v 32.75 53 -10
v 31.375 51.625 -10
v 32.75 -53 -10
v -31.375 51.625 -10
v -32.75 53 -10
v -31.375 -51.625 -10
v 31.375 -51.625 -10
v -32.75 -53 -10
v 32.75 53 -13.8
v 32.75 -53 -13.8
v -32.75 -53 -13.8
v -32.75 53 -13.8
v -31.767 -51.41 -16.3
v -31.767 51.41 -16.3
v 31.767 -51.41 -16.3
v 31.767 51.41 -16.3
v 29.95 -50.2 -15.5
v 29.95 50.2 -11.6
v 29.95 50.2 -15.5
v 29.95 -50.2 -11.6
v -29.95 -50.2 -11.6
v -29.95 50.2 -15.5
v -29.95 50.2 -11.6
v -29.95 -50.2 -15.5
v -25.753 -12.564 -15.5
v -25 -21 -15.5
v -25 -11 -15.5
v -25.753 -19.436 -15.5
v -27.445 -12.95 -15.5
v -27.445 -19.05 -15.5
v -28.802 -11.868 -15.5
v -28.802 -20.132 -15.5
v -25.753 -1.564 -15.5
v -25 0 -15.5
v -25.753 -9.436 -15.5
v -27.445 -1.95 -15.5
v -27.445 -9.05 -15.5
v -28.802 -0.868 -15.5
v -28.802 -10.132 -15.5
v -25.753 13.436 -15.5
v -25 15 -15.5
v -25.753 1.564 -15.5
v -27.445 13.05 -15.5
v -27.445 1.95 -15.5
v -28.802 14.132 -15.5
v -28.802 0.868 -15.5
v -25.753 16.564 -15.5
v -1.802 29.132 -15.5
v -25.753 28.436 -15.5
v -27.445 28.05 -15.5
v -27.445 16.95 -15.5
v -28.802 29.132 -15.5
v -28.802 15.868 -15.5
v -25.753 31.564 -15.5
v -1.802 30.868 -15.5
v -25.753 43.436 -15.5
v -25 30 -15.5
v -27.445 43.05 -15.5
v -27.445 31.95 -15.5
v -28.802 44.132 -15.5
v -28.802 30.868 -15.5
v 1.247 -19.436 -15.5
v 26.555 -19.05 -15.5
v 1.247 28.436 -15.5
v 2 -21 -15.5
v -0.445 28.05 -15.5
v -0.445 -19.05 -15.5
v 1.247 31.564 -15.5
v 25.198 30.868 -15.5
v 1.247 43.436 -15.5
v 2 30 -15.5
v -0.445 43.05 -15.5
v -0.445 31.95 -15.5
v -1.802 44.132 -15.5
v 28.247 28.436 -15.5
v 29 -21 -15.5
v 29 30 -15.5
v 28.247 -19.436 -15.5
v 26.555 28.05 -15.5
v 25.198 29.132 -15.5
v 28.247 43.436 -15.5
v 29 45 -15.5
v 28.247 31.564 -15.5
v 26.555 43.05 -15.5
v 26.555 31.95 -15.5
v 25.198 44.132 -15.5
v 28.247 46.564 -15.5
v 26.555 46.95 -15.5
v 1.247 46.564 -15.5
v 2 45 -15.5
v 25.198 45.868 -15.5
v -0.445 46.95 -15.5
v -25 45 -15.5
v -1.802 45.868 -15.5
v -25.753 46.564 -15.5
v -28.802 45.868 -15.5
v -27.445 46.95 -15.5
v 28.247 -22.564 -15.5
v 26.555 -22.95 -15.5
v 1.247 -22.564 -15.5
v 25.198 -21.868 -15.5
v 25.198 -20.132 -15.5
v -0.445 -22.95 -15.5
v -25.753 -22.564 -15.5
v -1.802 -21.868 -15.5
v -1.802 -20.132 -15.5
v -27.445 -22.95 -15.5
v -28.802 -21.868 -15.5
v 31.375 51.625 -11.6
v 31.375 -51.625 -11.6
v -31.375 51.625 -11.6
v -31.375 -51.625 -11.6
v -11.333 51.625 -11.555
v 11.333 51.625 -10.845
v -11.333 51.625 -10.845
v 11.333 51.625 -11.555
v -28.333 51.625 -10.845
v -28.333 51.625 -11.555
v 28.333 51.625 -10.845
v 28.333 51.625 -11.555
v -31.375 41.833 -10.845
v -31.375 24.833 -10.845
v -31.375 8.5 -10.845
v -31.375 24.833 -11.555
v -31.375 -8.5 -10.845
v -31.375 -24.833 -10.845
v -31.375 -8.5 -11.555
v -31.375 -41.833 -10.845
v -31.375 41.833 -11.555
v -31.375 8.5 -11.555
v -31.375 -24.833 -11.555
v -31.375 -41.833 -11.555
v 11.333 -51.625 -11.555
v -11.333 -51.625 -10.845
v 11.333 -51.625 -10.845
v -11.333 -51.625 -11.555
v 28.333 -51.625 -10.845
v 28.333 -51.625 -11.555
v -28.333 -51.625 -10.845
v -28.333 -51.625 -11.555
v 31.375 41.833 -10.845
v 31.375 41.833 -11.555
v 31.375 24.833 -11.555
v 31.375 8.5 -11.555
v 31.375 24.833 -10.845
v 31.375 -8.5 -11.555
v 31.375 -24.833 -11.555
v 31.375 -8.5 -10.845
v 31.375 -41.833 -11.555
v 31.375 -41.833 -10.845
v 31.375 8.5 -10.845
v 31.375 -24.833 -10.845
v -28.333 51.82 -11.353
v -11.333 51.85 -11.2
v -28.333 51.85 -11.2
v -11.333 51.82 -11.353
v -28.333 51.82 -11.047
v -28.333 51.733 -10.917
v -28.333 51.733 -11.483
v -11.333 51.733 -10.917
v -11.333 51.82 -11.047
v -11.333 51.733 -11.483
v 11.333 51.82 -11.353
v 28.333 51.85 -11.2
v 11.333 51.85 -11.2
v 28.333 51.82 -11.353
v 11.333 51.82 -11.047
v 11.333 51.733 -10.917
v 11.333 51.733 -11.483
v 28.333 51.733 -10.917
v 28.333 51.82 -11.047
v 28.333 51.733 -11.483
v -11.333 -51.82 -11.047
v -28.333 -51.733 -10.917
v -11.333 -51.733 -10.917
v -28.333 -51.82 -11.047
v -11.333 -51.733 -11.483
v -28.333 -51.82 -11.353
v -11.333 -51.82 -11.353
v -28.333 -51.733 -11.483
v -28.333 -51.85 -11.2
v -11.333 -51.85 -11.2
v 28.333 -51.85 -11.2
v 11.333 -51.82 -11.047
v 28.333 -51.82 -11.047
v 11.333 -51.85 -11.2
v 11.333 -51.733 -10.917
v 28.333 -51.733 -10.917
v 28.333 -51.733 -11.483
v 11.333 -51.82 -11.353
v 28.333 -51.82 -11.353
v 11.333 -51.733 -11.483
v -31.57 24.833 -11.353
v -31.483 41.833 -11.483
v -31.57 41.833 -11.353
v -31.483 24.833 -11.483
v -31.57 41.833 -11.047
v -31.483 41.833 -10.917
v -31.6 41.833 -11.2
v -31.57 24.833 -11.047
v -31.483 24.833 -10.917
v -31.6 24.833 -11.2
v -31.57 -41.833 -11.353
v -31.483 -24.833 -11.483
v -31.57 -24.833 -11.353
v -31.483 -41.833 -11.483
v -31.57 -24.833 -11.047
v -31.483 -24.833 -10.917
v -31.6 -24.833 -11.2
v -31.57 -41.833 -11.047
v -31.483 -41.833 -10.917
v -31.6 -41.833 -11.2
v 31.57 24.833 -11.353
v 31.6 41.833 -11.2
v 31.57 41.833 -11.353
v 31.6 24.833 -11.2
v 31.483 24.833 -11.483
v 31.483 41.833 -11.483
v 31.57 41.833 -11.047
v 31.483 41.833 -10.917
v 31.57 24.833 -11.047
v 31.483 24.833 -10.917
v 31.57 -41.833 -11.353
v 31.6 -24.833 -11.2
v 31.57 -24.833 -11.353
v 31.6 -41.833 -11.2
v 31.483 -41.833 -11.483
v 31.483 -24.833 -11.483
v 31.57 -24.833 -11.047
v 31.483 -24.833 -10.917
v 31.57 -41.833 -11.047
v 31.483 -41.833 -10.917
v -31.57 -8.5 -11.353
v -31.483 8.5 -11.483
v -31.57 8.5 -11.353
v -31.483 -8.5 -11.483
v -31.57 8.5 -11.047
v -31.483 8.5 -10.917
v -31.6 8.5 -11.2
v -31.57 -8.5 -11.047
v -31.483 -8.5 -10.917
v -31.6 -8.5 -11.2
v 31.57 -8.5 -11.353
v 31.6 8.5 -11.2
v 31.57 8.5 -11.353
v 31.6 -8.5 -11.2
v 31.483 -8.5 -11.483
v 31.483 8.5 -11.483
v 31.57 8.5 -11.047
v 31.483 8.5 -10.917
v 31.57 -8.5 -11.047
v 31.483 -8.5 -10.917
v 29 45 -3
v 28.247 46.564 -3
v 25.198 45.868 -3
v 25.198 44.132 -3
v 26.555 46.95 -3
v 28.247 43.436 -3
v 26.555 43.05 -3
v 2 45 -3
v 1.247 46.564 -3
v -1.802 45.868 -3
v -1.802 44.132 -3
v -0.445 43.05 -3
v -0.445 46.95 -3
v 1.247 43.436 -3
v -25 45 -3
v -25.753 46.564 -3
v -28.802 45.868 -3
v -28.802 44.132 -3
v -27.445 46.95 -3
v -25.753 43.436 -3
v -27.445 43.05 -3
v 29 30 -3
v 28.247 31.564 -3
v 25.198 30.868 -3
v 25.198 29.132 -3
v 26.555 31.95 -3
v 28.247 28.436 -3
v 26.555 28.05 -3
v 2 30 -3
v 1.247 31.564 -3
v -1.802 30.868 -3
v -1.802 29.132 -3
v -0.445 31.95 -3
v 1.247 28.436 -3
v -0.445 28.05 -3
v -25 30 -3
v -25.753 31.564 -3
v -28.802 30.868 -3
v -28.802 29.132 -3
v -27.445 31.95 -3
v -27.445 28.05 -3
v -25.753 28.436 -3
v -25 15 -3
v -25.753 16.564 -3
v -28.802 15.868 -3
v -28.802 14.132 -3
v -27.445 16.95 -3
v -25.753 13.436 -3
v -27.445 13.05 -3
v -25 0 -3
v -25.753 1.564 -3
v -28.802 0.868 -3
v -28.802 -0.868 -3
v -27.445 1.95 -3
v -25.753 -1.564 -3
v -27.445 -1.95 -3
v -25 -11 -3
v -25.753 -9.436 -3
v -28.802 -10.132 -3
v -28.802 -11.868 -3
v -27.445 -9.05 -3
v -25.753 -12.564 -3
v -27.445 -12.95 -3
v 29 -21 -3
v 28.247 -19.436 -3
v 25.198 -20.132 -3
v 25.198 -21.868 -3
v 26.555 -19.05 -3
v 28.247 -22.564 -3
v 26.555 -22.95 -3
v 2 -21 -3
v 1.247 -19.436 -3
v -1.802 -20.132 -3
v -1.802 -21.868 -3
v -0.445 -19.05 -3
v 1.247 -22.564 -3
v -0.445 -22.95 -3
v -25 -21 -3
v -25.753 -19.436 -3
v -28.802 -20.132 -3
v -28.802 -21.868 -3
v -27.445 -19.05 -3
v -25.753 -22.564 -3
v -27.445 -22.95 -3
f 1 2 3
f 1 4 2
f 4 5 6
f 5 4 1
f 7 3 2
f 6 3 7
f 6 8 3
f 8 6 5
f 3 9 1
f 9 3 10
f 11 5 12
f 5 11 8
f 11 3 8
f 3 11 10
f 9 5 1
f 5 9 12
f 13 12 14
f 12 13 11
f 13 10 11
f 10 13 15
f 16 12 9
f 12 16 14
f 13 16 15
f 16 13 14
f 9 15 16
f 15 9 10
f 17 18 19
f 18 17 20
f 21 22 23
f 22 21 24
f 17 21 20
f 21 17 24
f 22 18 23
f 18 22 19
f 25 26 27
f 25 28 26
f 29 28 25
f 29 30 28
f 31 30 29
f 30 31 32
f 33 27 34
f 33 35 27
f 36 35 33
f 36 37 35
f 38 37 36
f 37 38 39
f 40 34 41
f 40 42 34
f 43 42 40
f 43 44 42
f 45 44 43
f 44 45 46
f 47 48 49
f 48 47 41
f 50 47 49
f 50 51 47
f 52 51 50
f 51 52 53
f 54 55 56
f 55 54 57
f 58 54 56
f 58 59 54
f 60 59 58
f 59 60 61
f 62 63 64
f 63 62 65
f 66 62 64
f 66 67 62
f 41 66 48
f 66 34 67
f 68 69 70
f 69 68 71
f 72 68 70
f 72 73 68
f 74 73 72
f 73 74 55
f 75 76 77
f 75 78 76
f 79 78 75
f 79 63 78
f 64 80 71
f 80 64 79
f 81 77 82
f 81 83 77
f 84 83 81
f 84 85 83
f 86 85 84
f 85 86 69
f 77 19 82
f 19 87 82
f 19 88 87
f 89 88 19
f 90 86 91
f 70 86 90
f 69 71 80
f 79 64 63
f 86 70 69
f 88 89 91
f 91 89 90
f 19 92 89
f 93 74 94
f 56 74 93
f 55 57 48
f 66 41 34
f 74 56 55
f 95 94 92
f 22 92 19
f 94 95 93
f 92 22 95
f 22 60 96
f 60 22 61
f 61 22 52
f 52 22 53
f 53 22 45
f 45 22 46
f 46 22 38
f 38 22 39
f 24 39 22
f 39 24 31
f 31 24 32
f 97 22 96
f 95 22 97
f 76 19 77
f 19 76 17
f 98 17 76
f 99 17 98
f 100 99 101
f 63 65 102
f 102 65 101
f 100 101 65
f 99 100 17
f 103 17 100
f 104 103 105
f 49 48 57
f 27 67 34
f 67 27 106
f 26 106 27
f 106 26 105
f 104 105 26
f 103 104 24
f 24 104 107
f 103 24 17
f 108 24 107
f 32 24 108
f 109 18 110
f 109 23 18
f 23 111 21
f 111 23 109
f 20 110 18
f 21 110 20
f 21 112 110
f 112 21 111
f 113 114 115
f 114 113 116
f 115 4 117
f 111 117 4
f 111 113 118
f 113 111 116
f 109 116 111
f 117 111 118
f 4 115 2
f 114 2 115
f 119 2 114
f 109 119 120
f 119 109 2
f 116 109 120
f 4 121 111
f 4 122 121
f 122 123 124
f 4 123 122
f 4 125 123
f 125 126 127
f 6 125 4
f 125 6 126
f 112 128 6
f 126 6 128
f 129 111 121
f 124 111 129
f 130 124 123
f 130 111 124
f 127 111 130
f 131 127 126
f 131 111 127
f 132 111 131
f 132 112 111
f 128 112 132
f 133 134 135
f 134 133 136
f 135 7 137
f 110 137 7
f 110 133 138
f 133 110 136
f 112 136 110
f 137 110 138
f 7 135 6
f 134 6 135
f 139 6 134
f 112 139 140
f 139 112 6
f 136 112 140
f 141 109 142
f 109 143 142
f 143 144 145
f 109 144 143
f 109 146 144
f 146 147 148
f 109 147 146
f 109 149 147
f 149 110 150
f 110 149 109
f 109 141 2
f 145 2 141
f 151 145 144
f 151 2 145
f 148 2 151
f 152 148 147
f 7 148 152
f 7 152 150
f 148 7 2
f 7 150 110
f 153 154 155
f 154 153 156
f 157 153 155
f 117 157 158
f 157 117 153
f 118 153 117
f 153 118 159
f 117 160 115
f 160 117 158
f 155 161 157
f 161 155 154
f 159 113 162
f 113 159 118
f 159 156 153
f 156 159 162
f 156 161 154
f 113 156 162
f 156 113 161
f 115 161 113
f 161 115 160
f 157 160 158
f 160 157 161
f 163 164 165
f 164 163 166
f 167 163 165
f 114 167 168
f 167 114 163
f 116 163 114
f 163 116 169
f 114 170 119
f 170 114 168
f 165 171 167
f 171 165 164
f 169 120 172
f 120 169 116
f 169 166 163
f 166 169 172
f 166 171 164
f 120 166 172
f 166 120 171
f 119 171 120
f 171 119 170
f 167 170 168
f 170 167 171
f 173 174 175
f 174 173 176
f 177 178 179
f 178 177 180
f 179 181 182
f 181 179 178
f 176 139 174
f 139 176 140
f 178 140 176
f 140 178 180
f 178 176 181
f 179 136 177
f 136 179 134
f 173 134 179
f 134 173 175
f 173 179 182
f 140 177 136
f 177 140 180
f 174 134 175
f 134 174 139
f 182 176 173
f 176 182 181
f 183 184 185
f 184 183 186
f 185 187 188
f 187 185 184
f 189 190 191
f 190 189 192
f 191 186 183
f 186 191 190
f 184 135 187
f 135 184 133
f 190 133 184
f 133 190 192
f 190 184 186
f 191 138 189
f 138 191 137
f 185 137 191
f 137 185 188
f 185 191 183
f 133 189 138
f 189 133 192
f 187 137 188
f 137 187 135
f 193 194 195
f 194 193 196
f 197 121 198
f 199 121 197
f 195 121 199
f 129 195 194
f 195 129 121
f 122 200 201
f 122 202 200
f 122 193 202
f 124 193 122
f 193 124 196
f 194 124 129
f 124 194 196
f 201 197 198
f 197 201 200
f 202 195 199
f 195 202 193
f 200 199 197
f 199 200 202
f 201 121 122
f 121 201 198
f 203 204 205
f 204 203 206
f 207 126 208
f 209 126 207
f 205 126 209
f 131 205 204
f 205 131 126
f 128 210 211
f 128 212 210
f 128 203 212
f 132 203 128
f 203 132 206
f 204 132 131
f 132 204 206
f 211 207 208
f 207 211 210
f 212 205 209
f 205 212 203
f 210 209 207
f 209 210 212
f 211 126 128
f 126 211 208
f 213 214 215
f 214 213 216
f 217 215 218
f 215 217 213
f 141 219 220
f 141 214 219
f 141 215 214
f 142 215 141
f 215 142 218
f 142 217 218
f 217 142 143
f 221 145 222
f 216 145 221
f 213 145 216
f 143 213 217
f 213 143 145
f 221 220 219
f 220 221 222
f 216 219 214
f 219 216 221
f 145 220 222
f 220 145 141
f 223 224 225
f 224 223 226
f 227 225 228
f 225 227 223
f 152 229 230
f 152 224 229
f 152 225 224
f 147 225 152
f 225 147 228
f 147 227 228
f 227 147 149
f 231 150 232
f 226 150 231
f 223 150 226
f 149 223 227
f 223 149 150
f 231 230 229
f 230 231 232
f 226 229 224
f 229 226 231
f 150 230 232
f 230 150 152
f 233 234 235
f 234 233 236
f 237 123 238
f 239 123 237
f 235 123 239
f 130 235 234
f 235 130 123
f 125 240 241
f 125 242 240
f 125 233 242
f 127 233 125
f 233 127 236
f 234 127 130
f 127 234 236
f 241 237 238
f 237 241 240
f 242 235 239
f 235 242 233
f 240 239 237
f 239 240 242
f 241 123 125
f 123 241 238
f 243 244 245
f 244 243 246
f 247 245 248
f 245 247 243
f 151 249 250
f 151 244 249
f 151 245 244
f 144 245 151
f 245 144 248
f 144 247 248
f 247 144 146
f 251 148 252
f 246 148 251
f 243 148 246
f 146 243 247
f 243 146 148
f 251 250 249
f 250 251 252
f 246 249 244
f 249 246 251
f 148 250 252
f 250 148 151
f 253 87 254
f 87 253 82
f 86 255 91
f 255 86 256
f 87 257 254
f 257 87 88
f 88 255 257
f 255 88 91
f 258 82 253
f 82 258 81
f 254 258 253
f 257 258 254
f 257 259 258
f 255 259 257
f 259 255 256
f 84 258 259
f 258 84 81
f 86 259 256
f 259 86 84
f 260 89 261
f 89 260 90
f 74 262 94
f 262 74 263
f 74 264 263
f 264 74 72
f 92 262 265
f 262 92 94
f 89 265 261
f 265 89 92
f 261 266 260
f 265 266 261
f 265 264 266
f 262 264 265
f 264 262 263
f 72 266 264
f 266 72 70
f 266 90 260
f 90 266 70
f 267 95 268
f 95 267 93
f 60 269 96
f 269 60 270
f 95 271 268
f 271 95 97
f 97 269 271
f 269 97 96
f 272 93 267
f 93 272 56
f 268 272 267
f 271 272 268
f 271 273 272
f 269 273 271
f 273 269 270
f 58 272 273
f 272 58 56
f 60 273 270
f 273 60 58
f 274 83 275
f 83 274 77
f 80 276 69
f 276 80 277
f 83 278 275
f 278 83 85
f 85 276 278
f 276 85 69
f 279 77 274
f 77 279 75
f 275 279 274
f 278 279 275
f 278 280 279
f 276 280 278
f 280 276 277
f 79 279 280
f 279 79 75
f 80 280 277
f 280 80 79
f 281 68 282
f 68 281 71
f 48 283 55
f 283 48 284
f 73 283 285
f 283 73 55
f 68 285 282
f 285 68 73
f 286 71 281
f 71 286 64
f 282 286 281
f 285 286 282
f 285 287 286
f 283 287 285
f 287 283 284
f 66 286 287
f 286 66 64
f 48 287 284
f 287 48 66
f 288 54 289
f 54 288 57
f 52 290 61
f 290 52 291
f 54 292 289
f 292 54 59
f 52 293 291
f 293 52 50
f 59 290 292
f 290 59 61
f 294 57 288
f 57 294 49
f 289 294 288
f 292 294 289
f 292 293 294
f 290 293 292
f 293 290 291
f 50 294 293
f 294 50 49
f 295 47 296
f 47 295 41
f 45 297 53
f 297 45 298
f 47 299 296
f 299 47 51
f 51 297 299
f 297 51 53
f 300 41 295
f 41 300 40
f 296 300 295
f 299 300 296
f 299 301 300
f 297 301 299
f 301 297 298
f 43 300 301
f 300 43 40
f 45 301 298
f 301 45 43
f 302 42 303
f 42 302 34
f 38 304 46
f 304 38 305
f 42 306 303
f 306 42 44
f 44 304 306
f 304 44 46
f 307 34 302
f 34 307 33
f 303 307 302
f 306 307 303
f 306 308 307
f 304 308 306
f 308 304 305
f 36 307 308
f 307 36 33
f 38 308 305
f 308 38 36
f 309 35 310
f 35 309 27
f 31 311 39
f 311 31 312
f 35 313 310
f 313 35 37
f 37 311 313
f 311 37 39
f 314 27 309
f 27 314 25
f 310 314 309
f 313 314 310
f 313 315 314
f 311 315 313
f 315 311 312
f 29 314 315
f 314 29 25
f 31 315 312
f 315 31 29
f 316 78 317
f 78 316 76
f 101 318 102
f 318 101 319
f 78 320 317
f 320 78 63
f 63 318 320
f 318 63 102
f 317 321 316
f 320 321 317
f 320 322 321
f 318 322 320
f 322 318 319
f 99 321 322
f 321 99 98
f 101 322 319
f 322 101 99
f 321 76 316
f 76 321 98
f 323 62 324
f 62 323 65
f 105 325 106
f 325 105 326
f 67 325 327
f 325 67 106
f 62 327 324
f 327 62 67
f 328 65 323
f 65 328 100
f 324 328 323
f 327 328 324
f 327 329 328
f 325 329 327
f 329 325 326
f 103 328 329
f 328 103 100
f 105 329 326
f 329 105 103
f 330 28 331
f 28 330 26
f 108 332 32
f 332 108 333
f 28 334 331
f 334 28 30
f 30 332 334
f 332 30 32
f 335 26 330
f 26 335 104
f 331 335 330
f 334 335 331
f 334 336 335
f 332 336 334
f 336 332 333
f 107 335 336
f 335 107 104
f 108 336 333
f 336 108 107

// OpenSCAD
// Thickness values for the case elements
pcb_thickness = 7;       // PCB thickness
lcd_thickness = 2.6;       // LCD thickness needed for border around screen
battery_thickness = 5.5;   // Tallest element on the back of the PCB is battery holder

// Thickness values for elements of keyboard spacer
switch_thickness = 2.0; 
pusher_thickness = 0.6;       
spacer_spring_thickness = 0.2;

// Thickness values for elements of keypad
keypad_thickness = 0.6; 
keypad_spring_thickness = 0.4; // Optionally can make flat spring thinner than keypad
keypad_tolerance = 0.4;        // Gap between keypad and case top

face_thickness = 0.8; 
back_thickness = 0.8; 
chamfer_thickness = 2.5; 
wall_width = 3.0; 
joint_thickness = 1.6; 
joint_width = 1.4; 
joint_tolerance = 0.05; 

pcb_width = 59.5; 
pcb_height = 100;
pcb_tolerance = 0.2; 

keypad_large_row = 5; // Distance from bottom PCB edge to the  
                        // center of 1st (bottom) row of large keys
keypad_small_row = 47.5; // Distance from bottom PCB edge to the  
                        // center of 1st (bottom) row of small keys

// Derived dimensions
spacer_thickness = switch_thickness + pusher_thickness; 
keyboard_thickness = spacer_thickness + keypad_thickness + keypad_tolerance; 

top_thickness = pcb_thickness + keyboard_thickness + face_thickness; 
bottom_thickness = battery_thickness + back_thickness; 
tot_thickness = top_thickness + bottom_thickness; 
tot_width = pcb_width + 2*wall_width; 
tot_height = pcb_height + 2*wall_width; 

keyb_left = 5.75; //keyboard left

module top_half() {
    difference() {
        union() {
            linear_extrude(height = top_thickness-chamfer_thickness) {
                square([tot_width, tot_height], center = true); 
            }
            translate([0, 0, top_thickness-chamfer_thickness]) {
                linear_extrude(height = chamfer_thickness, scale = 0.97) {
                    square([tot_width, tot_height], center = true); 
                }
            }
        }

        linear_extrude(height = pcb_thickness + keyboard_thickness) {
            square([pcb_width + 2*pcb_tolerance, pcb_height + 2*pcb_tolerance], 
                       center = true); 
        }

        // Cut-outs for large keys
        union() { 
            for (i=[0:4]) {
                for (j=[0:3]) {
                   translate([11.4*(i-2.5)+keyb_left, 10*j-pcb_height/2.+keypad_large_row, 
                              pcb_thickness + keyboard_thickness]) 
//                        cube([9.6, 5.6, 10], center = true); 
                        linear_extrude(height = face_thickness, scale = 1.1) 
                            square([9.6, 5.6], center = true); 

                }
            }
        }

        // Cut-outs for small keys
        union() { 
            for (i=[0:4]) {
                for (j=[0:3]) {
                   translate([11.4*(i-2.5)+keyb_left, 
                        7.7*j-pcb_height/2.+keypad_small_row, 
                        pcb_thickness + keyboard_thickness]) 
//                        cube([8.6, 4.6, 10], center = true); 
                        linear_extrude(height = face_thickness, scale = 1.1) 
                            square([8.6, 4.6], center = true); 

                }
            }
        }
        
        // Cut-out for display
        translate([0, pcb_height/2.-18/2., pcb_thickness + keyboard_thickness]) 
          linear_extrude(height = face_thickness, scale = 1.03) 
            square([23, 12], center = true); 
        
        // Cut-out for display cable
        //translate([0, pcb_height/2., pcb_thickness/2.]) 
        //  cube([1, 2, pcb_thickness*2], center = true); 
        
    }

    // Supporting edge between display and keyboard (vahejoon)
    translate([0, pcb_height/2.-58.4, pcb_thickness + keyboard_thickness]) 
      cube([pcb_width+2*pcb_tolerance, 2.4, keyboard_thickness/4], 
           center = true);     

    // Joint around PCB
    translate([0, 0, -joint_thickness]) 
    difference() {
      linear_extrude(height = joint_thickness) {
        difference() {
            square([pcb_width + 2*pcb_tolerance+2*joint_width-joint_tolerance, 
                    pcb_height + 2*pcb_tolerance + 2*joint_width-joint_tolerance], center = true); 
            square([pcb_width + 2*pcb_tolerance, 
                    pcb_height + 2*pcb_tolerance], center = true); 
        }
      }
      // Cut-out for display cable
      translate([0, pcb_height/2., pcb_thickness/2.]) 
                  cube([12, 2, pcb_thickness*2], center = true); 
    }
}; 
    
module bottom_half() {
    difference() {
        union() {
            linear_extrude(height = bottom_thickness - chamfer_thickness) {
                square([tot_width, tot_height], center = true); 
            }
            translate([0, 0, bottom_thickness - chamfer_thickness]) {
                linear_extrude(height = chamfer_thickness, scale = 0.97) {
                    square([tot_width, tot_height], center = true); 
                }
            }
        }
        linear_extrude(height = battery_thickness) {
                square([pcb_width+2*pcb_tolerance, pcb_height+2*pcb_tolerance], 
                   center = true); 
        }

      // Joint around PCB
      translate([0, 0, 0]) 
        linear_extrude(height = joint_thickness) {
          difference() {
            square([pcb_width + 2*pcb_tolerance+2*joint_width + joint_tolerance, 
                    pcb_height + 2*pcb_tolerance + 2*joint_width + joint_tolerance], center = true); 
            square([pcb_width + 2*pcb_tolerance, 
                    pcb_height + 2*pcb_tolerance], center = true); 
          }
        }

    translate([-pcb_width/3, pcb_height/2. + pcb_tolerance + joint_width-0.2 + joint_tolerance, joint_thickness-0.4]) rotate(a = [0, 90, 0]) cylinder(17, r=0.4, $fn=16, center = true); 
    translate([+pcb_width/3, pcb_height/2. + pcb_tolerance + joint_width-0.2 + joint_tolerance, joint_thickness-0.4]) rotate(a = [0, 90, 0]) cylinder(17, r=0.4, $fn=16, center = true); 
    translate([-pcb_width/3, -pcb_height/2. - pcb_tolerance - joint_width+0.2 - joint_tolerance, joint_thickness-0.4]) rotate(a = [0, 90, 0]) cylinder(17, r=0.4, $fn=16, center = true); 
    translate([+pcb_width/3, -pcb_height/2. - pcb_tolerance - joint_width+0.2 - joint_tolerance, joint_thickness-0.4]) rotate(a = [0, 90, 0]) cylinder(17, r=0.4, $fn=16, center = true); 
    translate([-pcb_width/2 - pcb_tolerance - joint_width+0.2- joint_tolerance, pcb_height/3., joint_thickness-0.4]) rotate(a = [90, 0, 0]) cylinder(17, r=0.4, $fn=16, center = true); 
    translate([-pcb_width/2 - pcb_tolerance - joint_width+0.2- joint_tolerance, -pcb_height/3., joint_thickness-0.4]) rotate(a = [90, 0, 0]) cylinder(17, r=0.4, $fn=16, center = true); 
    translate([ pcb_width/2 + pcb_tolerance + joint_width-0.2+joint_tolerance, pcb_height/3., joint_thickness-0.4]) rotate(a = [90, 0, 0]) cylinder(17, r=0.4, $fn=16, center = true); 
    translate([ pcb_width/2 + pcb_tolerance + joint_width-0.2+joint_tolerance, -pcb_height/3., joint_thickness-0.4]) rotate(a = [90, 0, 0]) cylinder(17, r=0.4, $fn=16, center = true); 
    translate([-pcb_width/2 - pcb_tolerance - joint_width+0.2-joint_tolerance, 0, joint_thickness-0.4]) rotate(a = [90, 0, 0]) cylinder(17, r=0.4, $fn=16, center = true); 
    translate([ pcb_width/2 + pcb_tolerance + joint_width-0.2+joint_tolerance, 0, joint_thickness-0.4]) rotate(a = [90, 0, 0]) cylinder(17, r=0.4, $fn=16, center = true); 


    }
    
    translate([27,45,-7]) cylinder(r=2,h=12.5);
    translate([0,45,-7]) cylinder(r=2,h=12.5);
    translate([-27,45,-7]) cylinder(r=2,h=12.5);
    
    translate([27,30,-7]) cylinder(r=2,h=12.5);
    translate([0,30,-7]) cylinder(r=2,h=12.5);
    translate([-27,30,-7]) cylinder(r=2,h=12.5);
    
    translate([-27,15,-7]) cylinder(r=2,h=12.5);
    translate([-27,0,-7]) cylinder(r=2,h=12.5);
    translate([-27,-11,-7]) cylinder(r=2,h=12.5);
    
    translate([27,-21,-7]) cylinder(r=2,h=12.5);
    translate([0,-21,-7]) cylinder(r=2,h=12.5);
    translate([-27,-21,-7]) cylinder(r=2,h=12.5);    
    
//    for (i=[0:3]) {
//      translate([0, 10-i*65/3., battery_thickness/2.]) cube([pcb_width, 3, battery_thickness], center = true);
//    }
    
//    translate([-pcb_width/2.+3/2., pcb_height/4., battery_thickness/2.]) cube([3, pcb_height/3., battery_thickness], center = true);
}; 

module large_key(s) {
  translate([0, 0, keypad_thickness/2]) {
    difference() {
      cube([12, 11, keypad_thickness], center = true); 
      cube([11.2,  8, keypad_thickness ], center = true); 
    }
  }; 
  translate([-2.5, -4, 0]) cube([5, 1, keypad_spring_thickness]); 
  translate([0, 0, keypad_thickness/2.]) cube([10,  6, keypad_thickness ], center = true); 
  difference() {
    linear_extrude(height = 2.2, scale = 0.85) square([9.2, 5.2], center = true); 
    //translate([0, 0, 3/2.]) cube([9, 5, 3 ], center = true); 
    translate([0, 0, 2.4]) {
        linear_extrude(height = 0.8) {
            text(s, font = "Liberation Sans:style=Bold", size = 3, halign = "center"        , valign = "center");
        }
    }
  }
}

module small_key(s) {
  translate([0, 0, 0.6/2]) {
    difference() {
      cube([12, 8.6, 0.6], center = true); 
      cube([10,  7.0, 1. ], center = true); 
    }
  }; 
  translate([-2., -3.5, 0]) cube([4, 1, 0.4]); 
  translate([0, 0, 0.6/2.]) cube([9., 5.5, 0.6 ], center = true); 
  difference() {
    linear_extrude(height = 2.2, scale = 0.9) square([8.2, 4.2], 
      center = true); 
    //translate([0, 0, 3/2.]) cube([9, 5, 3 ], center = true); 
    translate([0, 0, 2.2]) {
        linear_extrude(height = 0.8) {
            text(s, font = "Liberation Sans:style=Bold", size = 2.4, halign = "center"        , valign = "center");
        }
    }
  }
}

module large_keypad() {

  labels = [
  "0", "/-/", ".", "+/-", "Ent", 
  "1", "2", "3", "+", "-", 
  "4", "5", "6", "*", "/", 
  "7", "8", "9", "E", "C"
  ]; 

  for (i=[0:4]) {
    for (j=[0:3]) {
      translate([11.4*(i-2), 10*j-pcb_height/2.+keypad_large_row, 
              pcb_thickness + spacer_thickness]) 
//        large_key(labels[5*j+i]); 
        large_key(""); 
    }
  }

}


module small_keypad() {

  labels = [
  "Erf", "Sqrt", "Pol", "1/x", "Drp", "X-Y", 
  "y^x", "ln", "lg", "sin", "cos", "tan", 
  "", "", "R-G", "M+", "MR", "MS", 
  "F", "G", "Mod", "Unc", "Prc", "On"
  ]; 

  for (i=[0:4]) {
    for (j=[0:3]) {
      translate([11.4*(i-2.5)+keyb_left, 7.7*j-pcb_height/2.+keypad_small_row, 
               pcb_thickness + spacer_thickness]) 
//        small_key(labels[6*j+i]); 
        small_key(""); 
    }
  }
  
  // Additional width on left and right
//  translate([pcb_width/2.-0.5, -8.6/2.-pcb_height/2.+keypad_small_row, 
//               pcb_thickness + spacer_thickness]) 
//    cube([0.5, 7.7*4 + 8.6-7.7, 0.6]); 
//  
//  translate([-pcb_width/2., -8.6/2.-pcb_height/2.+keypad_small_row, 
//               pcb_thickness + spacer_thickness]) 
//    cube([0.5, 7.7*4 + 8.6-7.7, 0.6]); 
  
}

module keypad() {

  large_keypad(); 
  small_keypad(); 

  // Connection between two keypads
//  translate([0., 10*4-pcb_height/2.+4.6, pcb_thickness + spacer_thickness + 0.6/2.]) cube([pcb_width, 2.2, 0.6], center = true); 
}

module large_spacer_element() {
  
    difference() {
      cube([14, 10, spacer_thickness], center = true); 
      cube([11, 7, spacer_thickness], center = true); 
    }
    translate([0, 0, spacer_thickness/2-pusher_thickness/2]) 
//      cube([3.2, 2.6, pusher_thickness], center = true); 
      cylinder(pusher_thickness, r = 1.6, center = true, $fn = 16);
    translate([0, -2.5, spacer_thickness/2-spacer_spring_thickness/2])  
      cube([3.0, 5, spacer_spring_thickness], center = true); 
}

module small_spacer_element() {
  
    difference() {
      cube([13, 8.6, spacer_thickness], center = true); 
      cube([10, 6.5, spacer_thickness], center = true); 
    }
    translate([0, 0, spacer_thickness/2-pusher_thickness/2]) 
//      cube([3.2, 2.6, pusher_thickness], center = true); 
      cylinder(pusher_thickness, r = 1.6, center = true, $fn = 16);
    translate([0, -8.6/4., spacer_thickness/2-spacer_spring_thickness/2])  
      cube([3.0, 8.6/2., spacer_spring_thickness], center = true); 
}

module spacer() {

//large
  for (i=[0:4]) {
    for (j=[0:3]) {
      translate([11.4*(i-2.5)+keyb_left, 10*j-pcb_height/2.+keypad_large_row, 
              pcb_thickness + spacer_thickness/2.]) 
        large_spacer_element(); 
    }
  }

//small
  for (i=[0:4]) {
    for (j=[0:3]) {
      translate([11.4*(i-2.5)+keyb_left, 7.7*j-pcb_height/2.+keypad_small_row, 
               pcb_thickness + spacer_thickness/2.]) 
        small_spacer_element(); 
    }
  }

//  translate([0, -18.9, pcb_thickness + spacer_thickness/2.]) 
//    cube([pcb_width, 2.2, spacer_thickness], center = true); 
}


// Tests 
//translate([0., 5.,  spacer_thickness/2.]) mirror([0,0,1]) small_spacer_element(); 
//translate([0., -5., 0]) small_key("y^x"); 



// Finally, make all parts
// Comment out if needed

//translate([0., 0., 0]) spacer(); 

//translate([0., 0., 10]) keypad();   

//translate([0., 0., 30]) top_half(); 

translate([0., 0., -10]) mirror([0,0,1]) bottom_half(); 

//cube([1, 1, 1], center = true); // Dummy cube for "mouse ears" in slicer
